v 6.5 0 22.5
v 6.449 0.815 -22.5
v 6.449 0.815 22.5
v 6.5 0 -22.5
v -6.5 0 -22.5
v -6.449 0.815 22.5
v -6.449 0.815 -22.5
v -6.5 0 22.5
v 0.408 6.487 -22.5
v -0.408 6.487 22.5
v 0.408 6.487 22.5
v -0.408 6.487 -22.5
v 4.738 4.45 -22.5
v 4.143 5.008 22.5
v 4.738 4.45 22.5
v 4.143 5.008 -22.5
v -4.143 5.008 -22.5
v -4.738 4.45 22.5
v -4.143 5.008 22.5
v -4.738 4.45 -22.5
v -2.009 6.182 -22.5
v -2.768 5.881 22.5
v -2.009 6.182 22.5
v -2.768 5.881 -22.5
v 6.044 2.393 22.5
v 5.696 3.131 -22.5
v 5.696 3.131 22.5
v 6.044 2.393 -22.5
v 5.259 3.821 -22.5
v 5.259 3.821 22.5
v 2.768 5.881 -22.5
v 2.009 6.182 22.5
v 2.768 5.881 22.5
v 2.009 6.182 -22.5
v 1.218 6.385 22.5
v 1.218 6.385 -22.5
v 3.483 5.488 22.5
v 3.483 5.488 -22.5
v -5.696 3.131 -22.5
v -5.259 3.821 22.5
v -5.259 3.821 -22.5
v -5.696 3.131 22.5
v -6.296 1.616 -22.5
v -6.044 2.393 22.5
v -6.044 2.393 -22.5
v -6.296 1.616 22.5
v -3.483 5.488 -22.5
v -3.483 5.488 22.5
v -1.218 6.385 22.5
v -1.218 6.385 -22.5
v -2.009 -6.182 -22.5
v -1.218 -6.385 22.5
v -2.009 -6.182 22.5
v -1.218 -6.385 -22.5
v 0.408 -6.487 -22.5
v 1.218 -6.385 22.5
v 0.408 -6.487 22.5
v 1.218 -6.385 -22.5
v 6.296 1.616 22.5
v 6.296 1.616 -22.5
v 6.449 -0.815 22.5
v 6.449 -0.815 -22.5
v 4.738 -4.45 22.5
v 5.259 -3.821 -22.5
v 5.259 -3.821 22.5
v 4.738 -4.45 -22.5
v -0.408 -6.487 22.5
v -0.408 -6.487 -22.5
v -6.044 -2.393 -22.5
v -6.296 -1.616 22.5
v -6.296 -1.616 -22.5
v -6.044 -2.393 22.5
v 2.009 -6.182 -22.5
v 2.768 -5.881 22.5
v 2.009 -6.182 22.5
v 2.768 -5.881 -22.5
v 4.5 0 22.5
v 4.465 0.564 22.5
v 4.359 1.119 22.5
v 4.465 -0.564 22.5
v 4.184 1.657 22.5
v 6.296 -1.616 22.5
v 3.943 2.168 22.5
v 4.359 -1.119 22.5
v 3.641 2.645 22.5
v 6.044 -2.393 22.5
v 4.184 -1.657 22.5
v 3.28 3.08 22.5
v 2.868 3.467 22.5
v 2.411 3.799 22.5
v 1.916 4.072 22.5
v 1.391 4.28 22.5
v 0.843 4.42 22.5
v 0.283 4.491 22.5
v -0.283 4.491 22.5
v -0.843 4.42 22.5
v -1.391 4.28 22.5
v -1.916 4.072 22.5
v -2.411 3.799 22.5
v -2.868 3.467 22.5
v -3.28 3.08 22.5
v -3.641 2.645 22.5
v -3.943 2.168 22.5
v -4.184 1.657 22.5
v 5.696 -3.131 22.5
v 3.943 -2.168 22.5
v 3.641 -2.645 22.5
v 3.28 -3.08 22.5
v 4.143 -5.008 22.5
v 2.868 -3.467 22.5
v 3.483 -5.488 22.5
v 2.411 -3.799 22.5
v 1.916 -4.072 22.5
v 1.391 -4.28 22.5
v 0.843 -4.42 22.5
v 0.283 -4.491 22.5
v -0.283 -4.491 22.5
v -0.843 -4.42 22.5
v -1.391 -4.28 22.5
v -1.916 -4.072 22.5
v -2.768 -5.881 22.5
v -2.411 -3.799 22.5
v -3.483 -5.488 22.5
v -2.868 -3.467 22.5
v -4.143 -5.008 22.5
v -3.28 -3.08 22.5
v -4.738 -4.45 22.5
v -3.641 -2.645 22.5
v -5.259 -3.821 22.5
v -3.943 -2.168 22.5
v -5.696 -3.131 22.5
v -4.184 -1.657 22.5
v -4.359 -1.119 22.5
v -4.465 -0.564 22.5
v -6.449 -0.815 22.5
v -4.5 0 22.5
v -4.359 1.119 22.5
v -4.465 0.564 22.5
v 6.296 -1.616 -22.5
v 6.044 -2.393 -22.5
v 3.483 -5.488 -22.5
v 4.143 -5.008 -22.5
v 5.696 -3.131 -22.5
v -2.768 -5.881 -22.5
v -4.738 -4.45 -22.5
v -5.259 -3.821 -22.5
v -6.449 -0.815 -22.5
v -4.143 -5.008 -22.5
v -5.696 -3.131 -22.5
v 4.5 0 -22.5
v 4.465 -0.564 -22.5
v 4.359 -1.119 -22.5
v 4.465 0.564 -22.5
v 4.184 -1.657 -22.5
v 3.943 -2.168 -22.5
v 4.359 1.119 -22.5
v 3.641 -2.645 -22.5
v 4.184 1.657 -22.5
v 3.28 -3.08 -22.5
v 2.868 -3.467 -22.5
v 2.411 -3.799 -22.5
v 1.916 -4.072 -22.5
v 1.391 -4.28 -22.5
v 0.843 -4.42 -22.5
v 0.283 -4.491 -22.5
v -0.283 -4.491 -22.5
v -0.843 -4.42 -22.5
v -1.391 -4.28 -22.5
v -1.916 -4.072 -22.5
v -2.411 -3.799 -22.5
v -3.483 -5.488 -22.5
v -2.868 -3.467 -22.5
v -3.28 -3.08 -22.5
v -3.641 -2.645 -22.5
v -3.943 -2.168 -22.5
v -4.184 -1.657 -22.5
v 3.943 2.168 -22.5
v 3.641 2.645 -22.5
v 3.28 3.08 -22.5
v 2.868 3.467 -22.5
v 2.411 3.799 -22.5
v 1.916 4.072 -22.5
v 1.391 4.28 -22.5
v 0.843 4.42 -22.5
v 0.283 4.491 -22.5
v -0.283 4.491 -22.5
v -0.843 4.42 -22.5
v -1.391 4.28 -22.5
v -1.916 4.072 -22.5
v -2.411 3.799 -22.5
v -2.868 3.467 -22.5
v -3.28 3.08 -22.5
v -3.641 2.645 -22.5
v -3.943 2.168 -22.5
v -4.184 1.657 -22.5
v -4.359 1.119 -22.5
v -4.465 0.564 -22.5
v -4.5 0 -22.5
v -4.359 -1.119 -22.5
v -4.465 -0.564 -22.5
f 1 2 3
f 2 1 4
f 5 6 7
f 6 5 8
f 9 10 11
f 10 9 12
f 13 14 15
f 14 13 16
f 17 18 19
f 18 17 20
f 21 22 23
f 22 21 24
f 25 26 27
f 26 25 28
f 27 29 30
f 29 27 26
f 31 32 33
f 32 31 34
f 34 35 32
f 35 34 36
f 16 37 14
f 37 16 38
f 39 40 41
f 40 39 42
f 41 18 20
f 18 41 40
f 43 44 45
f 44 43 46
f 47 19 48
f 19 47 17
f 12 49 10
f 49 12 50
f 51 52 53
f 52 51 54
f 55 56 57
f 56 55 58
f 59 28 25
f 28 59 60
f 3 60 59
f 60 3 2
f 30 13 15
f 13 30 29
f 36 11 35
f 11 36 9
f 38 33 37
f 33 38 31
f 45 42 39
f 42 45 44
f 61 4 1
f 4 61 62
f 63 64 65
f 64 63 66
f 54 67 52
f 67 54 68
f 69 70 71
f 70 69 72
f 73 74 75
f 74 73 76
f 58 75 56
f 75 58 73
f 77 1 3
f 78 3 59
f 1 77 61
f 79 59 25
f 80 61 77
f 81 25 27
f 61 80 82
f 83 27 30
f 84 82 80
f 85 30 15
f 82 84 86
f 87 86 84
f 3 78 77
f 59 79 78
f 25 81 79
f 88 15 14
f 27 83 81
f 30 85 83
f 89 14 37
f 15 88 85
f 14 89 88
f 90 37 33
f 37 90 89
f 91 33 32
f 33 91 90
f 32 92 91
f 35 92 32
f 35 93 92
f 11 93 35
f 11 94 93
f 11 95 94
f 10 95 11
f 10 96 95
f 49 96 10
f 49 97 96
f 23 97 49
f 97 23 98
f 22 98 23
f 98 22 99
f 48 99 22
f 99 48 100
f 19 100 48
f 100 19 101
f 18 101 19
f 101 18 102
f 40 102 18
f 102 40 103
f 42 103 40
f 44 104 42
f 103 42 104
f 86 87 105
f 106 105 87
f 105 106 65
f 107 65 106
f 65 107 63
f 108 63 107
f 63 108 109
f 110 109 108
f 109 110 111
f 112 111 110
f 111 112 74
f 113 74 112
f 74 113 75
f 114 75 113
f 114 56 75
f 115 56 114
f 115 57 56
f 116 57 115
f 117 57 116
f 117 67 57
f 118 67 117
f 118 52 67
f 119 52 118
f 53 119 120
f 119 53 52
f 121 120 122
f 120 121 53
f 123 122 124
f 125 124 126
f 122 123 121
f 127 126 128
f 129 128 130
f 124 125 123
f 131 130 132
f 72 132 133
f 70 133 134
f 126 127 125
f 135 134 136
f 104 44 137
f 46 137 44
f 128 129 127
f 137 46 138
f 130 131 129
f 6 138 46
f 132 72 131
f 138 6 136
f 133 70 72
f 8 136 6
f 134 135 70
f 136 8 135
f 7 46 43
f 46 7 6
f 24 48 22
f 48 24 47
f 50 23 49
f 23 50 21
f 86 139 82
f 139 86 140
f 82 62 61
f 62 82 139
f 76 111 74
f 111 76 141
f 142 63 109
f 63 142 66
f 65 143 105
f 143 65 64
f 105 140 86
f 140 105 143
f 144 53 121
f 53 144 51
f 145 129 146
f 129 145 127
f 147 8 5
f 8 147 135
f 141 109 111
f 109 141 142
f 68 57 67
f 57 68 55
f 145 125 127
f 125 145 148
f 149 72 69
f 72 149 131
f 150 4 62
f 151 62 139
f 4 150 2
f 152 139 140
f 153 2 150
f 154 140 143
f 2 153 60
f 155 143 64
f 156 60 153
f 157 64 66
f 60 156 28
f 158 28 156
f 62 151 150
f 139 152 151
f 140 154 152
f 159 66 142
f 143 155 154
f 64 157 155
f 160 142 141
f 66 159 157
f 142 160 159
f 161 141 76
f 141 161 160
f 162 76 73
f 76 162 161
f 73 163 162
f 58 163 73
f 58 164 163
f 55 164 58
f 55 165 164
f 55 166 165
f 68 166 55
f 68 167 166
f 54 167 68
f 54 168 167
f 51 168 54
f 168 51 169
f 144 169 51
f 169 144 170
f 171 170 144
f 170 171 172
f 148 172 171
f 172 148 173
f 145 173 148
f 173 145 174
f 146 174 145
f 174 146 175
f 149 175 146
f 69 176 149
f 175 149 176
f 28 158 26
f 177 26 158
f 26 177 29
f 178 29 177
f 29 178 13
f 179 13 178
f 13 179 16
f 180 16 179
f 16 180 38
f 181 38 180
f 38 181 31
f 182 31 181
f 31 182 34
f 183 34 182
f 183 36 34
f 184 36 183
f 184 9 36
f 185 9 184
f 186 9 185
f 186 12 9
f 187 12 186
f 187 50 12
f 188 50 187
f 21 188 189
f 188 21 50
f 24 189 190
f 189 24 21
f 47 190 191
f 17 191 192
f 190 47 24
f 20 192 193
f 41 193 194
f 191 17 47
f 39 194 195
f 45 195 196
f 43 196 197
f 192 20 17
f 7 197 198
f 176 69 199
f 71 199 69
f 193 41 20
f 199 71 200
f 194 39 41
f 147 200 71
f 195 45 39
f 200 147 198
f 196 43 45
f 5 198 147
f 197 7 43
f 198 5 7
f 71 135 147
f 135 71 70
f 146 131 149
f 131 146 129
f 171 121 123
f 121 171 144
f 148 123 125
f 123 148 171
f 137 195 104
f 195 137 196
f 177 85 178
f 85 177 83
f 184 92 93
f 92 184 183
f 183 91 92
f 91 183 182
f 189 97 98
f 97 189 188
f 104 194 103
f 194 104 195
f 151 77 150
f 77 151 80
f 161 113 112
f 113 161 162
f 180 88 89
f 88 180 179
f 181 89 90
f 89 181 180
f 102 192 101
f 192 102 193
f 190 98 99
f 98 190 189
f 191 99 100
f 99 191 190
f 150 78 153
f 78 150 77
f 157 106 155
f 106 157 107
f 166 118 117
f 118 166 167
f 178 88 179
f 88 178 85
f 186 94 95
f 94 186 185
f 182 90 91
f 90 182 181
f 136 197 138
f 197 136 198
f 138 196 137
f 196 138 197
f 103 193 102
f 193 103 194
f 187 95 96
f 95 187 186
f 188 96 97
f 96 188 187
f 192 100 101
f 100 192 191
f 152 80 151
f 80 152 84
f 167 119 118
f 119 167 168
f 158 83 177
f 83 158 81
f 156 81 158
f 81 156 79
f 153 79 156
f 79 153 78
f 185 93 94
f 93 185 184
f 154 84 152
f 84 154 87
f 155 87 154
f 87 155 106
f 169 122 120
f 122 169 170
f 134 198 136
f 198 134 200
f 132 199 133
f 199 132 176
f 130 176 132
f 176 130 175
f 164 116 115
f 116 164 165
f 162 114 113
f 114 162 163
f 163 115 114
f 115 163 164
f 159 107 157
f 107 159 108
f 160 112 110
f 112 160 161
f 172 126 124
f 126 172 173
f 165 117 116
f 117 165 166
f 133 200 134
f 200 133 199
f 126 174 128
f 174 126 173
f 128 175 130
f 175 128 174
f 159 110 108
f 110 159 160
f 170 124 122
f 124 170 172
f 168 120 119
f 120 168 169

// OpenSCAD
$fn = 50;


difference() {
	union() {
		translate(v = [0, 0, -22.5000000000]) {
			cylinder(h = 45, r = 6.5000000000);
		}
	}
	union() {
		translate(v = [0, 0, -100.0000000000]) {
			cylinder(h = 200, r = 4.5000000000);
		}
	}
}
